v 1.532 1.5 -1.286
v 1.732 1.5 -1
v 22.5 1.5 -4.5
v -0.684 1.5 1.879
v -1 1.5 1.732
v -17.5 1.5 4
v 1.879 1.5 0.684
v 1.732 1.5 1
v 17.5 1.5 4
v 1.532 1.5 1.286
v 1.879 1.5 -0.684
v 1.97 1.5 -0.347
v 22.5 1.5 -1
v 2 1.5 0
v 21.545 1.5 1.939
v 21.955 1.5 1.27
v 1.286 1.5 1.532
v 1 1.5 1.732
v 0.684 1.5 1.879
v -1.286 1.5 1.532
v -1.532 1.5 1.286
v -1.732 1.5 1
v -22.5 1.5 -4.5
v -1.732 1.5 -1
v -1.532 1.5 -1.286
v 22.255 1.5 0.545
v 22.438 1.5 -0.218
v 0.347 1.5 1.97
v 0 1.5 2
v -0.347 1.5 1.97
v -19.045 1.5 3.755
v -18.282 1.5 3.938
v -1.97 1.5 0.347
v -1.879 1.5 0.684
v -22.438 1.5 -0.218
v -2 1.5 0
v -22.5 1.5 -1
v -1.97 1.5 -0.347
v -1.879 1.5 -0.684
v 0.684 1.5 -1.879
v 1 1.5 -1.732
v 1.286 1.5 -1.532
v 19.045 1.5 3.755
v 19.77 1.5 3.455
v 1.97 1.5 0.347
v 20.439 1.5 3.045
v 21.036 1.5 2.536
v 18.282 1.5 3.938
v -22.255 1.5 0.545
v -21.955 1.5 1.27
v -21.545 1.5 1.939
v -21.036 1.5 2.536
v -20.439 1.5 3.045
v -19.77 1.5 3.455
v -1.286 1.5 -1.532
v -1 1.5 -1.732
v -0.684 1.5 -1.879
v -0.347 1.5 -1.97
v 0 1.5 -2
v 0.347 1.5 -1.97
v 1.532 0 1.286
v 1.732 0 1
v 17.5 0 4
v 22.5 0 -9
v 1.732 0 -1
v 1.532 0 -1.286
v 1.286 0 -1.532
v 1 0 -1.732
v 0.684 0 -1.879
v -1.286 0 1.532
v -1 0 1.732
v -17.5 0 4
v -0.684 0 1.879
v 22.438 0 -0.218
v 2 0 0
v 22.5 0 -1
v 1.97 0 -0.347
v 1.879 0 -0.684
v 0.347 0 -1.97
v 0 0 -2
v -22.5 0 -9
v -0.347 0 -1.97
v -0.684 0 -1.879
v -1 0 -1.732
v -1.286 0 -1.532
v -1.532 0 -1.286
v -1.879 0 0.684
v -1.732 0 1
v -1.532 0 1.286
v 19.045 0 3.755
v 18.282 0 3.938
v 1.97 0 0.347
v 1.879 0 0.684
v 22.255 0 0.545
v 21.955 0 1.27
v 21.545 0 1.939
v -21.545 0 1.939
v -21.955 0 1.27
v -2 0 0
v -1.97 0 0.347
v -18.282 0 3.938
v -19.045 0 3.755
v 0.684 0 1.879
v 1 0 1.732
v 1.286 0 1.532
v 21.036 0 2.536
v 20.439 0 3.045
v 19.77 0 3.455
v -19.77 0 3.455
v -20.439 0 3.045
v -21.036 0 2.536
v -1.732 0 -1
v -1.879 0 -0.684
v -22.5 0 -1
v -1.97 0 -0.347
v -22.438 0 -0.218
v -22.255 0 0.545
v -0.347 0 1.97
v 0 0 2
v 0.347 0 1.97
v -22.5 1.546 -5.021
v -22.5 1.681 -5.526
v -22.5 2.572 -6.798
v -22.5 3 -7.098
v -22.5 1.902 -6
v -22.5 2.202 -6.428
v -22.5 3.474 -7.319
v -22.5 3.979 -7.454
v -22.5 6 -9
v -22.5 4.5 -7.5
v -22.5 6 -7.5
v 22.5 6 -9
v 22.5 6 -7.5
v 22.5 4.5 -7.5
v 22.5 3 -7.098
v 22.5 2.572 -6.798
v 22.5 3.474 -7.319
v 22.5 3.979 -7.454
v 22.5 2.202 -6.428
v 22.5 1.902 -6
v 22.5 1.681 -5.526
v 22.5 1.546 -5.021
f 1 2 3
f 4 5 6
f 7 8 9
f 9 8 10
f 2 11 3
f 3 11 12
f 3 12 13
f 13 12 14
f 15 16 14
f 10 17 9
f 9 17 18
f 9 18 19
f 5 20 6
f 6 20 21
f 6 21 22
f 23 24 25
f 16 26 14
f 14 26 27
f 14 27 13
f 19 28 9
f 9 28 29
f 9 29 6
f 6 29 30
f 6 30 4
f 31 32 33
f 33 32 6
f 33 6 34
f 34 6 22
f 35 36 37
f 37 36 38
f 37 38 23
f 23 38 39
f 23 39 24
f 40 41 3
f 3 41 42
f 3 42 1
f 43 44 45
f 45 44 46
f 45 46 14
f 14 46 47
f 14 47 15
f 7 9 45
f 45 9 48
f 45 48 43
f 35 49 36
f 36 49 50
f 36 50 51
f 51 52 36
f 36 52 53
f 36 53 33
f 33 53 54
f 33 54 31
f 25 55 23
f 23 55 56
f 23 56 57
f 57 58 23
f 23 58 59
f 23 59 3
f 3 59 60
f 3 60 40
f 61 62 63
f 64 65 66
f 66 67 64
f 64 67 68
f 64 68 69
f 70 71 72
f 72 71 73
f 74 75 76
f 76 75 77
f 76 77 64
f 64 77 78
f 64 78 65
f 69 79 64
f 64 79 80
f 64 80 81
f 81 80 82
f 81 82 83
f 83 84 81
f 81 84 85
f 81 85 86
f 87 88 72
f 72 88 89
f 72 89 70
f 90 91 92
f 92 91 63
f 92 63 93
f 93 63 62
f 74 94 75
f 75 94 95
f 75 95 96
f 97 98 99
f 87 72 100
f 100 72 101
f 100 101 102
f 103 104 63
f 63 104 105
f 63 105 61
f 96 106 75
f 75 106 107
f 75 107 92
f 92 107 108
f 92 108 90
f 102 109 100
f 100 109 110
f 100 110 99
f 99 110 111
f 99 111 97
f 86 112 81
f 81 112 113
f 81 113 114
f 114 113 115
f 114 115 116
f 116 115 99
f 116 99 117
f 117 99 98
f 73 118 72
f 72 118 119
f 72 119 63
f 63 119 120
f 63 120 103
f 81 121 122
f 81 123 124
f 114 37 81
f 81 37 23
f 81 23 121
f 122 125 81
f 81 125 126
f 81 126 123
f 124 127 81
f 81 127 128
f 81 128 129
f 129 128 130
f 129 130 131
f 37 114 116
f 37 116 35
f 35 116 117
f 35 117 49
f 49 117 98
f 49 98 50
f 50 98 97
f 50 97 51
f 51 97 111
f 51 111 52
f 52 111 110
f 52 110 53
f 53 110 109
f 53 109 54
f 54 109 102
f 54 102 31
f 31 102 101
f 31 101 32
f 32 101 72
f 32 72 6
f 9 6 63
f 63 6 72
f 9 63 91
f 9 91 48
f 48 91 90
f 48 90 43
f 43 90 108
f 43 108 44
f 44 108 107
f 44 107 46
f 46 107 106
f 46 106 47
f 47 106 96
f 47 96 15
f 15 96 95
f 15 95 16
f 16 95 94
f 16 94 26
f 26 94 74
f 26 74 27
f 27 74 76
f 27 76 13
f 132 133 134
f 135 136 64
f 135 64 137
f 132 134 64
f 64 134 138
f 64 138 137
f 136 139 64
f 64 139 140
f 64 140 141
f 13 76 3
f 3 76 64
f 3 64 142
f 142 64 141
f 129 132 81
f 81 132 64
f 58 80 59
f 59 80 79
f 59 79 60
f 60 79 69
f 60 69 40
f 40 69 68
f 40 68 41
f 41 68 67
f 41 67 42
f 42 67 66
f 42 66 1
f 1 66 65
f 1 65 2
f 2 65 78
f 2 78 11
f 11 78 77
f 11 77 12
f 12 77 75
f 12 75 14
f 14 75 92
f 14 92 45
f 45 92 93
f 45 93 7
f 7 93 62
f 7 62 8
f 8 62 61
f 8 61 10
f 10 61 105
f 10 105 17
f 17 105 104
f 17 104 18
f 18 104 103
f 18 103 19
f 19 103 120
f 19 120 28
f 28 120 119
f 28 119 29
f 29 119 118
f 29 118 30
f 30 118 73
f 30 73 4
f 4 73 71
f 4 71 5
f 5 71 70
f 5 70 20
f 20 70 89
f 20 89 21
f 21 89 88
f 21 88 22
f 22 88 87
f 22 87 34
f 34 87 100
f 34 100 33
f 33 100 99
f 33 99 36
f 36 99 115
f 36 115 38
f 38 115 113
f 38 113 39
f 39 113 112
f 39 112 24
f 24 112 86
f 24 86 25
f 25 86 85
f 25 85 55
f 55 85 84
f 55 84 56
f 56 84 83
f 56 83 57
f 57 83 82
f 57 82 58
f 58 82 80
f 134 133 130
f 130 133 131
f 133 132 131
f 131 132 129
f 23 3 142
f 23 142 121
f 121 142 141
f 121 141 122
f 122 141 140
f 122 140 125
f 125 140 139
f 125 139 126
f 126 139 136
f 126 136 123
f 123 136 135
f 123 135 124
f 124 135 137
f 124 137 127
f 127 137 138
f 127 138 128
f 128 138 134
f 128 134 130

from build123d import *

# Parameters (mm, degrees)
SKETCH1_R           = 2
BOSS_EXTRUDE1_DEPTH = 1.5
SKETCH2_W           = 45
SKETCH2_H           = 1.5
BOSS_EXTRUDE2_DEPTH = 4.5
FILLET1_R           = 3


with BuildPart() as part:
    # Sketch1 → Boss-Extrude1 (new body)
    with BuildSketch(Plane(origin=(0, 0, 0), x_dir=(1, 0, 0), z_dir=(0, 1, 0))):
        with BuildLine():
            Line((-22.5, 9), (22.5, 9))
            Line((22.5, 9), (22.5, 1))
            ThreePointArc((22.5, 1), (21.035533906, -2.535533906), (17.5, -4))
            Line((17.5, -4), (-17.5, -4))
            ThreePointArc((-17.5, -4), (-21.035533906, -2.535533906), (-22.5, 1))
            Line((-22.5, 1), (-22.5, 9))
        make_face()
        with Locations(Location((0, 0, 0), (0, 0, 270))):
            Circle(SKETCH1_R, mode=Mode.SUBTRACT)
    extrude(amount=BOSS_EXTRUDE1_DEPTH)

    # Sketch2 → Boss-Extrude2 (add)
    with BuildSketch(Plane(origin=(0, 1.5, 0), x_dir=(1, 0, 0), z_dir=(0, 1, 0))):
        with Locations((0, 8.25)):
            Rectangle(SKETCH2_W, SKETCH2_H)
    extrude(amount=BOSS_EXTRUDE2_DEPTH)

    # Fillet1
    fillet1_edges = [part.edges().sort_by_distance(p)[0] for p in [
        (0, 1.5, -7.5),
    ]]
    fillet(fillet1_edges, radius=FILLET1_R)


solid = part.part
